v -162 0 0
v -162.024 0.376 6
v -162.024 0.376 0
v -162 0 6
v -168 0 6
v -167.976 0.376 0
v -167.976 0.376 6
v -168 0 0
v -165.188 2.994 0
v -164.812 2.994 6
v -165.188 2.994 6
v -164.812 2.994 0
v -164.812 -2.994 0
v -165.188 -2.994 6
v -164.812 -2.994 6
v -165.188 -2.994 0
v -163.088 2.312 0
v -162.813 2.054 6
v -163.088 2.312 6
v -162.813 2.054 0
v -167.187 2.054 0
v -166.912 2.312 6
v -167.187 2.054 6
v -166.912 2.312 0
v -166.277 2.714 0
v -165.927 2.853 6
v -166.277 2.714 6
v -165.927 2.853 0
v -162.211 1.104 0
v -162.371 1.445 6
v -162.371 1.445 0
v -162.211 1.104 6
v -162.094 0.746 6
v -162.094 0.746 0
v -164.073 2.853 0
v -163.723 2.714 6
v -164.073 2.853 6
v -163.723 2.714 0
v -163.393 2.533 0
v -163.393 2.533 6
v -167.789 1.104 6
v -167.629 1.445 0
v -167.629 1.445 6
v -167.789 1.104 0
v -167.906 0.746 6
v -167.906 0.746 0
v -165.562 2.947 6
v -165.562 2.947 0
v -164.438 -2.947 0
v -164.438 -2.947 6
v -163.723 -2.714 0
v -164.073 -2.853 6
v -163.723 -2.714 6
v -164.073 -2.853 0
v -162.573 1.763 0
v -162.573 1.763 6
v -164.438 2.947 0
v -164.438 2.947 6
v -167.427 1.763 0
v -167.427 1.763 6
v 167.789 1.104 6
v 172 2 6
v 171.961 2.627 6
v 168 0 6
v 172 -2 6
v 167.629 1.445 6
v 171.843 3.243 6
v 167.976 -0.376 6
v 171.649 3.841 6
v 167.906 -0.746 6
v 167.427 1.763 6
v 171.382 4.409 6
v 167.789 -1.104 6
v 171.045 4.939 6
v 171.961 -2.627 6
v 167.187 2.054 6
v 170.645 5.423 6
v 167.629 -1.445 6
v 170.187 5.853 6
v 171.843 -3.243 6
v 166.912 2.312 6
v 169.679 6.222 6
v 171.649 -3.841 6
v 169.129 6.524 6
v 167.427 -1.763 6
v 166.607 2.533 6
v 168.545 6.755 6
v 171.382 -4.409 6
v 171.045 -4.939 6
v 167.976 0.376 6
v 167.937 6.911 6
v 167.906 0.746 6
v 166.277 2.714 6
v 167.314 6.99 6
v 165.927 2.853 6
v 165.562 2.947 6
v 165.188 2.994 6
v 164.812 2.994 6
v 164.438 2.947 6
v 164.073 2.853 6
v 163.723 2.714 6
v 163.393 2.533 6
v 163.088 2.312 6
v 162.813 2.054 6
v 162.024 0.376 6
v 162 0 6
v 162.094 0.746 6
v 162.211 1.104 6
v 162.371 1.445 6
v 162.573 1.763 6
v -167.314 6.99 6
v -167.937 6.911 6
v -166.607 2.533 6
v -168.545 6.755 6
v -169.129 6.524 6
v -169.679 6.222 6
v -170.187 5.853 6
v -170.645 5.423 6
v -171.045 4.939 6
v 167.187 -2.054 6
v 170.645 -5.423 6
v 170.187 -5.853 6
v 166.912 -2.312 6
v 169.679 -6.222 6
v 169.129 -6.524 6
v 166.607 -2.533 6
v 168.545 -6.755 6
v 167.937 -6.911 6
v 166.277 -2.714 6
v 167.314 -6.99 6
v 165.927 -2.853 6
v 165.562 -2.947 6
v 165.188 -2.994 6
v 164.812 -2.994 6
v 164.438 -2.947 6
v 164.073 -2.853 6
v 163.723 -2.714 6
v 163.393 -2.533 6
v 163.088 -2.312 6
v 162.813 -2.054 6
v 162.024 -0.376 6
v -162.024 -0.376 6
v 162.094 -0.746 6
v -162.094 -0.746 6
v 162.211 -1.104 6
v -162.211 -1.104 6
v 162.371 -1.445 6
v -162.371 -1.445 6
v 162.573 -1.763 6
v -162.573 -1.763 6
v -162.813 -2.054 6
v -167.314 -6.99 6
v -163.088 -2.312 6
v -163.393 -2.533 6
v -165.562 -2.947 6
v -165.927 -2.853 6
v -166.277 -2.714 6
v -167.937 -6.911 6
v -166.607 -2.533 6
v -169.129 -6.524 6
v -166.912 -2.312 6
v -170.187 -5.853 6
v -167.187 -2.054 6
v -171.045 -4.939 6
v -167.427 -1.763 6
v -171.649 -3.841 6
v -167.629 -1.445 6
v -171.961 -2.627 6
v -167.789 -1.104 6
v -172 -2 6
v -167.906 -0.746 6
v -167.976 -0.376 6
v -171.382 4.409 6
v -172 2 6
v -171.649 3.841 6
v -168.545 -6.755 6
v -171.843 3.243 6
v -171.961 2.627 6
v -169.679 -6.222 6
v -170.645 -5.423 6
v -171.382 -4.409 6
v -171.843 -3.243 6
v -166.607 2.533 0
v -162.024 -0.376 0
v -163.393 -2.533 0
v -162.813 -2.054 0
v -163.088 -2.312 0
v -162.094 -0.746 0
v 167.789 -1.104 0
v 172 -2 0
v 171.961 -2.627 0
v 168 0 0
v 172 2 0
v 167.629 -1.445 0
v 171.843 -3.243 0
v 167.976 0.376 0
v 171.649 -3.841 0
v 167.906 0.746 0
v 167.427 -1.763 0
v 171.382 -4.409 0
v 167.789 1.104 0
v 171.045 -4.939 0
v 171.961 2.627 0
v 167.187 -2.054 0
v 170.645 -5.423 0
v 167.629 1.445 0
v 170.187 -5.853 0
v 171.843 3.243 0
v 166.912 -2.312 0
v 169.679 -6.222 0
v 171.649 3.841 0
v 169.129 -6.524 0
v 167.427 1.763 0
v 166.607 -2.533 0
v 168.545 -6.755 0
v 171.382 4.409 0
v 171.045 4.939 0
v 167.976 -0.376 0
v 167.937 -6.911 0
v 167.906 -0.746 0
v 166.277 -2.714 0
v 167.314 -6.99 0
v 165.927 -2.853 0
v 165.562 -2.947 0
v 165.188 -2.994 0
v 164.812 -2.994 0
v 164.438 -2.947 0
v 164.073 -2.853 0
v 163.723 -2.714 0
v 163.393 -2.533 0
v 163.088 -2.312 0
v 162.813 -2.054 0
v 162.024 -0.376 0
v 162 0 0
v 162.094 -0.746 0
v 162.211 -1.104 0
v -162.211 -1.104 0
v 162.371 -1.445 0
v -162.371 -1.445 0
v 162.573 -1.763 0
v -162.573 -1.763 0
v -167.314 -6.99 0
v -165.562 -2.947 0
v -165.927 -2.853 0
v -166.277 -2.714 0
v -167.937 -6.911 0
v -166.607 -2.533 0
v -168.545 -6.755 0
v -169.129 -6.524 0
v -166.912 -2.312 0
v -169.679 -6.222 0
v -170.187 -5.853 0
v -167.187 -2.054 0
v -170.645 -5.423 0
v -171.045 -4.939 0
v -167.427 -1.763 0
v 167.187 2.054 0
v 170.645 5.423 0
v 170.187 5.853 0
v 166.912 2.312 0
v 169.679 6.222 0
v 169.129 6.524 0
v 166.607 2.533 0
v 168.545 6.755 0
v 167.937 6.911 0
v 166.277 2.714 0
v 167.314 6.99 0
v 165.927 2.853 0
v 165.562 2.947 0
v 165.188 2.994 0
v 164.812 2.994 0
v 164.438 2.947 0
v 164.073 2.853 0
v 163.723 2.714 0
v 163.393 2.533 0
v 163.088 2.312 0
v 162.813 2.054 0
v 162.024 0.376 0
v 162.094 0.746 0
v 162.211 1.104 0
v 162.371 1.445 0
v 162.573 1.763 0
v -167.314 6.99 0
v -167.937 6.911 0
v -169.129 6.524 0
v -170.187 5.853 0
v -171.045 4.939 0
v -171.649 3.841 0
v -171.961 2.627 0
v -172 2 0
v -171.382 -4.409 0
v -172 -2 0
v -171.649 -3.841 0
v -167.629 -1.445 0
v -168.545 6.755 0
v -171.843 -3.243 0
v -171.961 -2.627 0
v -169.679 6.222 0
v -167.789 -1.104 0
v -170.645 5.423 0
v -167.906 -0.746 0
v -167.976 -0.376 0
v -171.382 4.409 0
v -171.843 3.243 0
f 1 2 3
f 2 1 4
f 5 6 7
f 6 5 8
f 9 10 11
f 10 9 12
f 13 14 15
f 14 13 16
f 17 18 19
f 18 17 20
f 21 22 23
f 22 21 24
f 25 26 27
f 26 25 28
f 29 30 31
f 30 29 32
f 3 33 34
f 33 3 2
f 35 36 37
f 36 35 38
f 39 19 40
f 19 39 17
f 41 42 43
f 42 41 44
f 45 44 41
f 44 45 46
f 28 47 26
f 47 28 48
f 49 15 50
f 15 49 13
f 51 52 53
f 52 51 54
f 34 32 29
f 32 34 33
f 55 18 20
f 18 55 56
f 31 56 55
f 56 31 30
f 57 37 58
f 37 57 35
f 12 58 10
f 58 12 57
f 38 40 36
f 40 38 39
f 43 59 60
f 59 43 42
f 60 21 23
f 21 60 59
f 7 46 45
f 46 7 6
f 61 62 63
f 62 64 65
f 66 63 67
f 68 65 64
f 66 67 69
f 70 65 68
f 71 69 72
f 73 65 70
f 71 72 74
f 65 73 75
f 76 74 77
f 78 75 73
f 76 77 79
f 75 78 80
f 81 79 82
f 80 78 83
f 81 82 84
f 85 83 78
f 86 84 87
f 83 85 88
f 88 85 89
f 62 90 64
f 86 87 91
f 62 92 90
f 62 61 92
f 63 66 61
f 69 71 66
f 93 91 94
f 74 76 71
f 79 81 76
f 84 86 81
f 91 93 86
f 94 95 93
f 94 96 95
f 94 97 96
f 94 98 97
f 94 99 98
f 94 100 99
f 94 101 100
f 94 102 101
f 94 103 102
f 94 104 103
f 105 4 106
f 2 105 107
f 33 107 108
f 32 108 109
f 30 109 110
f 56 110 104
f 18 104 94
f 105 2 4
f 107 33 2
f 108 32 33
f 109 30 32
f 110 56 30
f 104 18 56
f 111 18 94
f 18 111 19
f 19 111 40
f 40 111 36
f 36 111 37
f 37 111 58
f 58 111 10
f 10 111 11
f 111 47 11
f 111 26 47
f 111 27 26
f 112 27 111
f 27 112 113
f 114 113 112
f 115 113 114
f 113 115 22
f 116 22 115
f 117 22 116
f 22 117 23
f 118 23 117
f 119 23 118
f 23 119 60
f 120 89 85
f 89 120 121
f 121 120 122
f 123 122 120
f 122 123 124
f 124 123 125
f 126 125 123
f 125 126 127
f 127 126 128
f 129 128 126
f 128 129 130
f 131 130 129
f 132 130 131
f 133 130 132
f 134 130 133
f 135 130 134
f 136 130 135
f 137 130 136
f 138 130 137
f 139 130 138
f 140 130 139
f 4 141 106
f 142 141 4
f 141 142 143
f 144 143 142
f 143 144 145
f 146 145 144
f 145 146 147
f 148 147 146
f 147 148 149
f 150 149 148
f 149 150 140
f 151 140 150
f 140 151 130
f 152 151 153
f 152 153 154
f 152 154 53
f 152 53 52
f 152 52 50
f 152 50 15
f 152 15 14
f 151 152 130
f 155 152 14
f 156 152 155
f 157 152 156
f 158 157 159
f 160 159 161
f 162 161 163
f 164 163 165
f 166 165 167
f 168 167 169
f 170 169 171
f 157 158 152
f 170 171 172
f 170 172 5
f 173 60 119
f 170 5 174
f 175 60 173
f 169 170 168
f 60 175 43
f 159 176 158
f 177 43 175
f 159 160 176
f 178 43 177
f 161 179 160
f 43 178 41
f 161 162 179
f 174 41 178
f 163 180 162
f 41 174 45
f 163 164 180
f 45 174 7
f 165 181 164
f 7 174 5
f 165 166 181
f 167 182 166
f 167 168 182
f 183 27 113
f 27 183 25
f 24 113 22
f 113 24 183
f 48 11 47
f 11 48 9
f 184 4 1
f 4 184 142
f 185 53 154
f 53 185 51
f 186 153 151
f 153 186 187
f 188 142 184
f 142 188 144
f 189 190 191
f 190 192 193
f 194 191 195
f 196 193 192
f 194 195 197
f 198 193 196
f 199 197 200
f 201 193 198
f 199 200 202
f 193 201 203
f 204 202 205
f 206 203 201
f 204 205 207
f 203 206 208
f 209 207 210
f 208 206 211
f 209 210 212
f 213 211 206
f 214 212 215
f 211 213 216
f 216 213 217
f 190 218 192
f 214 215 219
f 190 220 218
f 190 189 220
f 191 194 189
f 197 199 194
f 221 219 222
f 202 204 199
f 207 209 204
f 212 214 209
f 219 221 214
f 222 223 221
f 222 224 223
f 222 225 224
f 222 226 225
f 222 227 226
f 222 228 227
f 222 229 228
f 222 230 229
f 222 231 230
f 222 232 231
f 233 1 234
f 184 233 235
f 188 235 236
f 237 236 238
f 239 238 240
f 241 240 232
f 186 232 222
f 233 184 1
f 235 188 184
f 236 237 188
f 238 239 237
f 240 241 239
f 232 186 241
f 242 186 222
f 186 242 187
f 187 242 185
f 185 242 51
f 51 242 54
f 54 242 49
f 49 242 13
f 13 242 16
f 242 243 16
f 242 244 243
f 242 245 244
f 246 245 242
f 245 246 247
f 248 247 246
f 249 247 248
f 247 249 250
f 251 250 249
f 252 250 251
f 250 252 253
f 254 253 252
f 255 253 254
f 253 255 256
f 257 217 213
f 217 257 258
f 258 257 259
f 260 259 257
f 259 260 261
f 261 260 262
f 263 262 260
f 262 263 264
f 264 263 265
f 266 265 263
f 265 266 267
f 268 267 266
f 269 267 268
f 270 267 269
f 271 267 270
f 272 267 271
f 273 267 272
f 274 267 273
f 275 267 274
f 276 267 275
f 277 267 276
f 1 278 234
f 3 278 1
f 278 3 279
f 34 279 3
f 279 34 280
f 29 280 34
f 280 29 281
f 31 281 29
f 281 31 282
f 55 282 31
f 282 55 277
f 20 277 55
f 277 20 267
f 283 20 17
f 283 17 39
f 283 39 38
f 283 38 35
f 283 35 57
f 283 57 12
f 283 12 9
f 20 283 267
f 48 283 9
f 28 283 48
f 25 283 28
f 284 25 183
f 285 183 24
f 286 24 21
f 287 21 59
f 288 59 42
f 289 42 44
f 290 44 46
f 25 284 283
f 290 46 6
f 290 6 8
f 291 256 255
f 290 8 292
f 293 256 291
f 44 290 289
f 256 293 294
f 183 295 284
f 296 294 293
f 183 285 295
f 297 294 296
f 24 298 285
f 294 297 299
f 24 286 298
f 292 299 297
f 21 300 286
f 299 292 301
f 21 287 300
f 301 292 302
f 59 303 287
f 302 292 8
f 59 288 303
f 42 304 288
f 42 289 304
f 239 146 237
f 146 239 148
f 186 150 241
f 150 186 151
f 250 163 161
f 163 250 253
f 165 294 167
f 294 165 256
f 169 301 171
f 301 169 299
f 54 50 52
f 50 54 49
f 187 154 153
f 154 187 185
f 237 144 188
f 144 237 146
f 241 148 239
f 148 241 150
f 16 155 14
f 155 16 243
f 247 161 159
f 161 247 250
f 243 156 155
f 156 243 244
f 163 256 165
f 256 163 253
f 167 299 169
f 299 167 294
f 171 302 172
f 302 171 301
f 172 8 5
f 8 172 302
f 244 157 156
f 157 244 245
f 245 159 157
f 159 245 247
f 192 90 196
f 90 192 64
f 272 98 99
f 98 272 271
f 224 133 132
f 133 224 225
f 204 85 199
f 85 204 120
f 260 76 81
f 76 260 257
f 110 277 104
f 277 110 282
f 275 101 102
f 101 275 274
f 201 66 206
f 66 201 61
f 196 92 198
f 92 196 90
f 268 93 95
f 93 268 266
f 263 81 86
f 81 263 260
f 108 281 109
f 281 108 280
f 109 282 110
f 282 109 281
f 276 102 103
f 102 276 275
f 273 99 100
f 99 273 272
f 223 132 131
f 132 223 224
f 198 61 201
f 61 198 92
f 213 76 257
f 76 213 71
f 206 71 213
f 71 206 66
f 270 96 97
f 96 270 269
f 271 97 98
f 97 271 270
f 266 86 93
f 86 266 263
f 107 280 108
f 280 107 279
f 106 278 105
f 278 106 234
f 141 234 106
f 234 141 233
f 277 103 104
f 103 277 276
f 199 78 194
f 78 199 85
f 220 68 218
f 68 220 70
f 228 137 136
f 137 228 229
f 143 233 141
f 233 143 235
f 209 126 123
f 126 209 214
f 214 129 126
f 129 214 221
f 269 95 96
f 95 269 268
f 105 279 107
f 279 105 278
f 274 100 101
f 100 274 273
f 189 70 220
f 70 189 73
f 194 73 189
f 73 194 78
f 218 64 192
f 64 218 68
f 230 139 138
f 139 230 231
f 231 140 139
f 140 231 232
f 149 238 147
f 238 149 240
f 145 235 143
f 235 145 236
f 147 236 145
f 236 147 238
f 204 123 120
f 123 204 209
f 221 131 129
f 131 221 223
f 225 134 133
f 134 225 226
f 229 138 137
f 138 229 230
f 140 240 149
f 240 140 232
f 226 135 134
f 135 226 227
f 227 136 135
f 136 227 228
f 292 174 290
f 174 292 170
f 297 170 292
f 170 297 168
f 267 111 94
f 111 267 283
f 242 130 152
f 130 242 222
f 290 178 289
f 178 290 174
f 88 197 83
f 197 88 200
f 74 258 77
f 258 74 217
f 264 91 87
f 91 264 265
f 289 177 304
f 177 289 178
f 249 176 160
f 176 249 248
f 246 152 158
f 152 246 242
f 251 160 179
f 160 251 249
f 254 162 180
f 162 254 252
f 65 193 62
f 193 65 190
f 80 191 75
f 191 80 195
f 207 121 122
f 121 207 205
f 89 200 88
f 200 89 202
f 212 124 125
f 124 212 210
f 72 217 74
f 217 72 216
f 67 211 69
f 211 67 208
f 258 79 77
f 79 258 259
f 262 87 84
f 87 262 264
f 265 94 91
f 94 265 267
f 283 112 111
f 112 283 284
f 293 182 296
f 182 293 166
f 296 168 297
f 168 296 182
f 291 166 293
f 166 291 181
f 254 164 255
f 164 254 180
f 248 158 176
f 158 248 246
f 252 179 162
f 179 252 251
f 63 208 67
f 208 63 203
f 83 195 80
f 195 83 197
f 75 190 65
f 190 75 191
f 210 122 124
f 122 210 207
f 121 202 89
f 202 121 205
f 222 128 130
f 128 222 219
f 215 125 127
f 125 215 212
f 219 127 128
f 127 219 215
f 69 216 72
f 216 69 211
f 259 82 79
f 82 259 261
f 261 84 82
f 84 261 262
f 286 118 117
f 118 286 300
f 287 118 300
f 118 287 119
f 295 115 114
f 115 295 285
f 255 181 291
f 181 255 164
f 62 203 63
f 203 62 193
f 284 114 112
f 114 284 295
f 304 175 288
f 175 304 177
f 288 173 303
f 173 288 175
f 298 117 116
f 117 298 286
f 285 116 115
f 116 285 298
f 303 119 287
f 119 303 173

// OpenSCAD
$fn = 50;


difference() {
	union() {
		hull() {
			translate(v = [-167.0000000000, 2.0000000000, 0]) {
				cylinder(h = 6, r = 5);
			}
			translate(v = [167.0000000000, 2.0000000000, 0]) {
				cylinder(h = 6, r = 5);
			}
			translate(v = [-167.0000000000, -2.0000000000, 0]) {
				cylinder(h = 6, r = 5);
			}
			translate(v = [167.0000000000, -2.0000000000, 0]) {
				cylinder(h = 6, r = 5);
			}
		}
	}
	union() {
		translate(v = [-165.0000000000, 0.0000000000, 0]) {
			cylinder(h = 6, r = 3.0000000000);
		}
		translate(v = [165.0000000000, 0.0000000000, 0]) {
			cylinder(h = 6, r = 3.0000000000);
		}
		translate(v = [-165.0000000000, 0.0000000000, 0]) {
			cylinder(h = 6, r = 1.5000000000);
		}
		translate(v = [165.0000000000, 0.0000000000, 0]) {
			cylinder(h = 6, r = 1.5000000000);
		}
		translate(v = [-165.0000000000, 0.0000000000, 0]) {
			cylinder(h = 6, r = 1.5000000000);
		}
		translate(v = [165.0000000000, 0.0000000000, 0]) {
			cylinder(h = 6, r = 1.5000000000);
		}
		translate(v = [-165.0000000000, 0.0000000000, 0]) {
			cylinder(h = 6, r = 1.5000000000);
		}
		translate(v = [165.0000000000, 0.0000000000, 0]) {
			cylinder(h = 6, r = 1.5000000000);
		}
	}
}
